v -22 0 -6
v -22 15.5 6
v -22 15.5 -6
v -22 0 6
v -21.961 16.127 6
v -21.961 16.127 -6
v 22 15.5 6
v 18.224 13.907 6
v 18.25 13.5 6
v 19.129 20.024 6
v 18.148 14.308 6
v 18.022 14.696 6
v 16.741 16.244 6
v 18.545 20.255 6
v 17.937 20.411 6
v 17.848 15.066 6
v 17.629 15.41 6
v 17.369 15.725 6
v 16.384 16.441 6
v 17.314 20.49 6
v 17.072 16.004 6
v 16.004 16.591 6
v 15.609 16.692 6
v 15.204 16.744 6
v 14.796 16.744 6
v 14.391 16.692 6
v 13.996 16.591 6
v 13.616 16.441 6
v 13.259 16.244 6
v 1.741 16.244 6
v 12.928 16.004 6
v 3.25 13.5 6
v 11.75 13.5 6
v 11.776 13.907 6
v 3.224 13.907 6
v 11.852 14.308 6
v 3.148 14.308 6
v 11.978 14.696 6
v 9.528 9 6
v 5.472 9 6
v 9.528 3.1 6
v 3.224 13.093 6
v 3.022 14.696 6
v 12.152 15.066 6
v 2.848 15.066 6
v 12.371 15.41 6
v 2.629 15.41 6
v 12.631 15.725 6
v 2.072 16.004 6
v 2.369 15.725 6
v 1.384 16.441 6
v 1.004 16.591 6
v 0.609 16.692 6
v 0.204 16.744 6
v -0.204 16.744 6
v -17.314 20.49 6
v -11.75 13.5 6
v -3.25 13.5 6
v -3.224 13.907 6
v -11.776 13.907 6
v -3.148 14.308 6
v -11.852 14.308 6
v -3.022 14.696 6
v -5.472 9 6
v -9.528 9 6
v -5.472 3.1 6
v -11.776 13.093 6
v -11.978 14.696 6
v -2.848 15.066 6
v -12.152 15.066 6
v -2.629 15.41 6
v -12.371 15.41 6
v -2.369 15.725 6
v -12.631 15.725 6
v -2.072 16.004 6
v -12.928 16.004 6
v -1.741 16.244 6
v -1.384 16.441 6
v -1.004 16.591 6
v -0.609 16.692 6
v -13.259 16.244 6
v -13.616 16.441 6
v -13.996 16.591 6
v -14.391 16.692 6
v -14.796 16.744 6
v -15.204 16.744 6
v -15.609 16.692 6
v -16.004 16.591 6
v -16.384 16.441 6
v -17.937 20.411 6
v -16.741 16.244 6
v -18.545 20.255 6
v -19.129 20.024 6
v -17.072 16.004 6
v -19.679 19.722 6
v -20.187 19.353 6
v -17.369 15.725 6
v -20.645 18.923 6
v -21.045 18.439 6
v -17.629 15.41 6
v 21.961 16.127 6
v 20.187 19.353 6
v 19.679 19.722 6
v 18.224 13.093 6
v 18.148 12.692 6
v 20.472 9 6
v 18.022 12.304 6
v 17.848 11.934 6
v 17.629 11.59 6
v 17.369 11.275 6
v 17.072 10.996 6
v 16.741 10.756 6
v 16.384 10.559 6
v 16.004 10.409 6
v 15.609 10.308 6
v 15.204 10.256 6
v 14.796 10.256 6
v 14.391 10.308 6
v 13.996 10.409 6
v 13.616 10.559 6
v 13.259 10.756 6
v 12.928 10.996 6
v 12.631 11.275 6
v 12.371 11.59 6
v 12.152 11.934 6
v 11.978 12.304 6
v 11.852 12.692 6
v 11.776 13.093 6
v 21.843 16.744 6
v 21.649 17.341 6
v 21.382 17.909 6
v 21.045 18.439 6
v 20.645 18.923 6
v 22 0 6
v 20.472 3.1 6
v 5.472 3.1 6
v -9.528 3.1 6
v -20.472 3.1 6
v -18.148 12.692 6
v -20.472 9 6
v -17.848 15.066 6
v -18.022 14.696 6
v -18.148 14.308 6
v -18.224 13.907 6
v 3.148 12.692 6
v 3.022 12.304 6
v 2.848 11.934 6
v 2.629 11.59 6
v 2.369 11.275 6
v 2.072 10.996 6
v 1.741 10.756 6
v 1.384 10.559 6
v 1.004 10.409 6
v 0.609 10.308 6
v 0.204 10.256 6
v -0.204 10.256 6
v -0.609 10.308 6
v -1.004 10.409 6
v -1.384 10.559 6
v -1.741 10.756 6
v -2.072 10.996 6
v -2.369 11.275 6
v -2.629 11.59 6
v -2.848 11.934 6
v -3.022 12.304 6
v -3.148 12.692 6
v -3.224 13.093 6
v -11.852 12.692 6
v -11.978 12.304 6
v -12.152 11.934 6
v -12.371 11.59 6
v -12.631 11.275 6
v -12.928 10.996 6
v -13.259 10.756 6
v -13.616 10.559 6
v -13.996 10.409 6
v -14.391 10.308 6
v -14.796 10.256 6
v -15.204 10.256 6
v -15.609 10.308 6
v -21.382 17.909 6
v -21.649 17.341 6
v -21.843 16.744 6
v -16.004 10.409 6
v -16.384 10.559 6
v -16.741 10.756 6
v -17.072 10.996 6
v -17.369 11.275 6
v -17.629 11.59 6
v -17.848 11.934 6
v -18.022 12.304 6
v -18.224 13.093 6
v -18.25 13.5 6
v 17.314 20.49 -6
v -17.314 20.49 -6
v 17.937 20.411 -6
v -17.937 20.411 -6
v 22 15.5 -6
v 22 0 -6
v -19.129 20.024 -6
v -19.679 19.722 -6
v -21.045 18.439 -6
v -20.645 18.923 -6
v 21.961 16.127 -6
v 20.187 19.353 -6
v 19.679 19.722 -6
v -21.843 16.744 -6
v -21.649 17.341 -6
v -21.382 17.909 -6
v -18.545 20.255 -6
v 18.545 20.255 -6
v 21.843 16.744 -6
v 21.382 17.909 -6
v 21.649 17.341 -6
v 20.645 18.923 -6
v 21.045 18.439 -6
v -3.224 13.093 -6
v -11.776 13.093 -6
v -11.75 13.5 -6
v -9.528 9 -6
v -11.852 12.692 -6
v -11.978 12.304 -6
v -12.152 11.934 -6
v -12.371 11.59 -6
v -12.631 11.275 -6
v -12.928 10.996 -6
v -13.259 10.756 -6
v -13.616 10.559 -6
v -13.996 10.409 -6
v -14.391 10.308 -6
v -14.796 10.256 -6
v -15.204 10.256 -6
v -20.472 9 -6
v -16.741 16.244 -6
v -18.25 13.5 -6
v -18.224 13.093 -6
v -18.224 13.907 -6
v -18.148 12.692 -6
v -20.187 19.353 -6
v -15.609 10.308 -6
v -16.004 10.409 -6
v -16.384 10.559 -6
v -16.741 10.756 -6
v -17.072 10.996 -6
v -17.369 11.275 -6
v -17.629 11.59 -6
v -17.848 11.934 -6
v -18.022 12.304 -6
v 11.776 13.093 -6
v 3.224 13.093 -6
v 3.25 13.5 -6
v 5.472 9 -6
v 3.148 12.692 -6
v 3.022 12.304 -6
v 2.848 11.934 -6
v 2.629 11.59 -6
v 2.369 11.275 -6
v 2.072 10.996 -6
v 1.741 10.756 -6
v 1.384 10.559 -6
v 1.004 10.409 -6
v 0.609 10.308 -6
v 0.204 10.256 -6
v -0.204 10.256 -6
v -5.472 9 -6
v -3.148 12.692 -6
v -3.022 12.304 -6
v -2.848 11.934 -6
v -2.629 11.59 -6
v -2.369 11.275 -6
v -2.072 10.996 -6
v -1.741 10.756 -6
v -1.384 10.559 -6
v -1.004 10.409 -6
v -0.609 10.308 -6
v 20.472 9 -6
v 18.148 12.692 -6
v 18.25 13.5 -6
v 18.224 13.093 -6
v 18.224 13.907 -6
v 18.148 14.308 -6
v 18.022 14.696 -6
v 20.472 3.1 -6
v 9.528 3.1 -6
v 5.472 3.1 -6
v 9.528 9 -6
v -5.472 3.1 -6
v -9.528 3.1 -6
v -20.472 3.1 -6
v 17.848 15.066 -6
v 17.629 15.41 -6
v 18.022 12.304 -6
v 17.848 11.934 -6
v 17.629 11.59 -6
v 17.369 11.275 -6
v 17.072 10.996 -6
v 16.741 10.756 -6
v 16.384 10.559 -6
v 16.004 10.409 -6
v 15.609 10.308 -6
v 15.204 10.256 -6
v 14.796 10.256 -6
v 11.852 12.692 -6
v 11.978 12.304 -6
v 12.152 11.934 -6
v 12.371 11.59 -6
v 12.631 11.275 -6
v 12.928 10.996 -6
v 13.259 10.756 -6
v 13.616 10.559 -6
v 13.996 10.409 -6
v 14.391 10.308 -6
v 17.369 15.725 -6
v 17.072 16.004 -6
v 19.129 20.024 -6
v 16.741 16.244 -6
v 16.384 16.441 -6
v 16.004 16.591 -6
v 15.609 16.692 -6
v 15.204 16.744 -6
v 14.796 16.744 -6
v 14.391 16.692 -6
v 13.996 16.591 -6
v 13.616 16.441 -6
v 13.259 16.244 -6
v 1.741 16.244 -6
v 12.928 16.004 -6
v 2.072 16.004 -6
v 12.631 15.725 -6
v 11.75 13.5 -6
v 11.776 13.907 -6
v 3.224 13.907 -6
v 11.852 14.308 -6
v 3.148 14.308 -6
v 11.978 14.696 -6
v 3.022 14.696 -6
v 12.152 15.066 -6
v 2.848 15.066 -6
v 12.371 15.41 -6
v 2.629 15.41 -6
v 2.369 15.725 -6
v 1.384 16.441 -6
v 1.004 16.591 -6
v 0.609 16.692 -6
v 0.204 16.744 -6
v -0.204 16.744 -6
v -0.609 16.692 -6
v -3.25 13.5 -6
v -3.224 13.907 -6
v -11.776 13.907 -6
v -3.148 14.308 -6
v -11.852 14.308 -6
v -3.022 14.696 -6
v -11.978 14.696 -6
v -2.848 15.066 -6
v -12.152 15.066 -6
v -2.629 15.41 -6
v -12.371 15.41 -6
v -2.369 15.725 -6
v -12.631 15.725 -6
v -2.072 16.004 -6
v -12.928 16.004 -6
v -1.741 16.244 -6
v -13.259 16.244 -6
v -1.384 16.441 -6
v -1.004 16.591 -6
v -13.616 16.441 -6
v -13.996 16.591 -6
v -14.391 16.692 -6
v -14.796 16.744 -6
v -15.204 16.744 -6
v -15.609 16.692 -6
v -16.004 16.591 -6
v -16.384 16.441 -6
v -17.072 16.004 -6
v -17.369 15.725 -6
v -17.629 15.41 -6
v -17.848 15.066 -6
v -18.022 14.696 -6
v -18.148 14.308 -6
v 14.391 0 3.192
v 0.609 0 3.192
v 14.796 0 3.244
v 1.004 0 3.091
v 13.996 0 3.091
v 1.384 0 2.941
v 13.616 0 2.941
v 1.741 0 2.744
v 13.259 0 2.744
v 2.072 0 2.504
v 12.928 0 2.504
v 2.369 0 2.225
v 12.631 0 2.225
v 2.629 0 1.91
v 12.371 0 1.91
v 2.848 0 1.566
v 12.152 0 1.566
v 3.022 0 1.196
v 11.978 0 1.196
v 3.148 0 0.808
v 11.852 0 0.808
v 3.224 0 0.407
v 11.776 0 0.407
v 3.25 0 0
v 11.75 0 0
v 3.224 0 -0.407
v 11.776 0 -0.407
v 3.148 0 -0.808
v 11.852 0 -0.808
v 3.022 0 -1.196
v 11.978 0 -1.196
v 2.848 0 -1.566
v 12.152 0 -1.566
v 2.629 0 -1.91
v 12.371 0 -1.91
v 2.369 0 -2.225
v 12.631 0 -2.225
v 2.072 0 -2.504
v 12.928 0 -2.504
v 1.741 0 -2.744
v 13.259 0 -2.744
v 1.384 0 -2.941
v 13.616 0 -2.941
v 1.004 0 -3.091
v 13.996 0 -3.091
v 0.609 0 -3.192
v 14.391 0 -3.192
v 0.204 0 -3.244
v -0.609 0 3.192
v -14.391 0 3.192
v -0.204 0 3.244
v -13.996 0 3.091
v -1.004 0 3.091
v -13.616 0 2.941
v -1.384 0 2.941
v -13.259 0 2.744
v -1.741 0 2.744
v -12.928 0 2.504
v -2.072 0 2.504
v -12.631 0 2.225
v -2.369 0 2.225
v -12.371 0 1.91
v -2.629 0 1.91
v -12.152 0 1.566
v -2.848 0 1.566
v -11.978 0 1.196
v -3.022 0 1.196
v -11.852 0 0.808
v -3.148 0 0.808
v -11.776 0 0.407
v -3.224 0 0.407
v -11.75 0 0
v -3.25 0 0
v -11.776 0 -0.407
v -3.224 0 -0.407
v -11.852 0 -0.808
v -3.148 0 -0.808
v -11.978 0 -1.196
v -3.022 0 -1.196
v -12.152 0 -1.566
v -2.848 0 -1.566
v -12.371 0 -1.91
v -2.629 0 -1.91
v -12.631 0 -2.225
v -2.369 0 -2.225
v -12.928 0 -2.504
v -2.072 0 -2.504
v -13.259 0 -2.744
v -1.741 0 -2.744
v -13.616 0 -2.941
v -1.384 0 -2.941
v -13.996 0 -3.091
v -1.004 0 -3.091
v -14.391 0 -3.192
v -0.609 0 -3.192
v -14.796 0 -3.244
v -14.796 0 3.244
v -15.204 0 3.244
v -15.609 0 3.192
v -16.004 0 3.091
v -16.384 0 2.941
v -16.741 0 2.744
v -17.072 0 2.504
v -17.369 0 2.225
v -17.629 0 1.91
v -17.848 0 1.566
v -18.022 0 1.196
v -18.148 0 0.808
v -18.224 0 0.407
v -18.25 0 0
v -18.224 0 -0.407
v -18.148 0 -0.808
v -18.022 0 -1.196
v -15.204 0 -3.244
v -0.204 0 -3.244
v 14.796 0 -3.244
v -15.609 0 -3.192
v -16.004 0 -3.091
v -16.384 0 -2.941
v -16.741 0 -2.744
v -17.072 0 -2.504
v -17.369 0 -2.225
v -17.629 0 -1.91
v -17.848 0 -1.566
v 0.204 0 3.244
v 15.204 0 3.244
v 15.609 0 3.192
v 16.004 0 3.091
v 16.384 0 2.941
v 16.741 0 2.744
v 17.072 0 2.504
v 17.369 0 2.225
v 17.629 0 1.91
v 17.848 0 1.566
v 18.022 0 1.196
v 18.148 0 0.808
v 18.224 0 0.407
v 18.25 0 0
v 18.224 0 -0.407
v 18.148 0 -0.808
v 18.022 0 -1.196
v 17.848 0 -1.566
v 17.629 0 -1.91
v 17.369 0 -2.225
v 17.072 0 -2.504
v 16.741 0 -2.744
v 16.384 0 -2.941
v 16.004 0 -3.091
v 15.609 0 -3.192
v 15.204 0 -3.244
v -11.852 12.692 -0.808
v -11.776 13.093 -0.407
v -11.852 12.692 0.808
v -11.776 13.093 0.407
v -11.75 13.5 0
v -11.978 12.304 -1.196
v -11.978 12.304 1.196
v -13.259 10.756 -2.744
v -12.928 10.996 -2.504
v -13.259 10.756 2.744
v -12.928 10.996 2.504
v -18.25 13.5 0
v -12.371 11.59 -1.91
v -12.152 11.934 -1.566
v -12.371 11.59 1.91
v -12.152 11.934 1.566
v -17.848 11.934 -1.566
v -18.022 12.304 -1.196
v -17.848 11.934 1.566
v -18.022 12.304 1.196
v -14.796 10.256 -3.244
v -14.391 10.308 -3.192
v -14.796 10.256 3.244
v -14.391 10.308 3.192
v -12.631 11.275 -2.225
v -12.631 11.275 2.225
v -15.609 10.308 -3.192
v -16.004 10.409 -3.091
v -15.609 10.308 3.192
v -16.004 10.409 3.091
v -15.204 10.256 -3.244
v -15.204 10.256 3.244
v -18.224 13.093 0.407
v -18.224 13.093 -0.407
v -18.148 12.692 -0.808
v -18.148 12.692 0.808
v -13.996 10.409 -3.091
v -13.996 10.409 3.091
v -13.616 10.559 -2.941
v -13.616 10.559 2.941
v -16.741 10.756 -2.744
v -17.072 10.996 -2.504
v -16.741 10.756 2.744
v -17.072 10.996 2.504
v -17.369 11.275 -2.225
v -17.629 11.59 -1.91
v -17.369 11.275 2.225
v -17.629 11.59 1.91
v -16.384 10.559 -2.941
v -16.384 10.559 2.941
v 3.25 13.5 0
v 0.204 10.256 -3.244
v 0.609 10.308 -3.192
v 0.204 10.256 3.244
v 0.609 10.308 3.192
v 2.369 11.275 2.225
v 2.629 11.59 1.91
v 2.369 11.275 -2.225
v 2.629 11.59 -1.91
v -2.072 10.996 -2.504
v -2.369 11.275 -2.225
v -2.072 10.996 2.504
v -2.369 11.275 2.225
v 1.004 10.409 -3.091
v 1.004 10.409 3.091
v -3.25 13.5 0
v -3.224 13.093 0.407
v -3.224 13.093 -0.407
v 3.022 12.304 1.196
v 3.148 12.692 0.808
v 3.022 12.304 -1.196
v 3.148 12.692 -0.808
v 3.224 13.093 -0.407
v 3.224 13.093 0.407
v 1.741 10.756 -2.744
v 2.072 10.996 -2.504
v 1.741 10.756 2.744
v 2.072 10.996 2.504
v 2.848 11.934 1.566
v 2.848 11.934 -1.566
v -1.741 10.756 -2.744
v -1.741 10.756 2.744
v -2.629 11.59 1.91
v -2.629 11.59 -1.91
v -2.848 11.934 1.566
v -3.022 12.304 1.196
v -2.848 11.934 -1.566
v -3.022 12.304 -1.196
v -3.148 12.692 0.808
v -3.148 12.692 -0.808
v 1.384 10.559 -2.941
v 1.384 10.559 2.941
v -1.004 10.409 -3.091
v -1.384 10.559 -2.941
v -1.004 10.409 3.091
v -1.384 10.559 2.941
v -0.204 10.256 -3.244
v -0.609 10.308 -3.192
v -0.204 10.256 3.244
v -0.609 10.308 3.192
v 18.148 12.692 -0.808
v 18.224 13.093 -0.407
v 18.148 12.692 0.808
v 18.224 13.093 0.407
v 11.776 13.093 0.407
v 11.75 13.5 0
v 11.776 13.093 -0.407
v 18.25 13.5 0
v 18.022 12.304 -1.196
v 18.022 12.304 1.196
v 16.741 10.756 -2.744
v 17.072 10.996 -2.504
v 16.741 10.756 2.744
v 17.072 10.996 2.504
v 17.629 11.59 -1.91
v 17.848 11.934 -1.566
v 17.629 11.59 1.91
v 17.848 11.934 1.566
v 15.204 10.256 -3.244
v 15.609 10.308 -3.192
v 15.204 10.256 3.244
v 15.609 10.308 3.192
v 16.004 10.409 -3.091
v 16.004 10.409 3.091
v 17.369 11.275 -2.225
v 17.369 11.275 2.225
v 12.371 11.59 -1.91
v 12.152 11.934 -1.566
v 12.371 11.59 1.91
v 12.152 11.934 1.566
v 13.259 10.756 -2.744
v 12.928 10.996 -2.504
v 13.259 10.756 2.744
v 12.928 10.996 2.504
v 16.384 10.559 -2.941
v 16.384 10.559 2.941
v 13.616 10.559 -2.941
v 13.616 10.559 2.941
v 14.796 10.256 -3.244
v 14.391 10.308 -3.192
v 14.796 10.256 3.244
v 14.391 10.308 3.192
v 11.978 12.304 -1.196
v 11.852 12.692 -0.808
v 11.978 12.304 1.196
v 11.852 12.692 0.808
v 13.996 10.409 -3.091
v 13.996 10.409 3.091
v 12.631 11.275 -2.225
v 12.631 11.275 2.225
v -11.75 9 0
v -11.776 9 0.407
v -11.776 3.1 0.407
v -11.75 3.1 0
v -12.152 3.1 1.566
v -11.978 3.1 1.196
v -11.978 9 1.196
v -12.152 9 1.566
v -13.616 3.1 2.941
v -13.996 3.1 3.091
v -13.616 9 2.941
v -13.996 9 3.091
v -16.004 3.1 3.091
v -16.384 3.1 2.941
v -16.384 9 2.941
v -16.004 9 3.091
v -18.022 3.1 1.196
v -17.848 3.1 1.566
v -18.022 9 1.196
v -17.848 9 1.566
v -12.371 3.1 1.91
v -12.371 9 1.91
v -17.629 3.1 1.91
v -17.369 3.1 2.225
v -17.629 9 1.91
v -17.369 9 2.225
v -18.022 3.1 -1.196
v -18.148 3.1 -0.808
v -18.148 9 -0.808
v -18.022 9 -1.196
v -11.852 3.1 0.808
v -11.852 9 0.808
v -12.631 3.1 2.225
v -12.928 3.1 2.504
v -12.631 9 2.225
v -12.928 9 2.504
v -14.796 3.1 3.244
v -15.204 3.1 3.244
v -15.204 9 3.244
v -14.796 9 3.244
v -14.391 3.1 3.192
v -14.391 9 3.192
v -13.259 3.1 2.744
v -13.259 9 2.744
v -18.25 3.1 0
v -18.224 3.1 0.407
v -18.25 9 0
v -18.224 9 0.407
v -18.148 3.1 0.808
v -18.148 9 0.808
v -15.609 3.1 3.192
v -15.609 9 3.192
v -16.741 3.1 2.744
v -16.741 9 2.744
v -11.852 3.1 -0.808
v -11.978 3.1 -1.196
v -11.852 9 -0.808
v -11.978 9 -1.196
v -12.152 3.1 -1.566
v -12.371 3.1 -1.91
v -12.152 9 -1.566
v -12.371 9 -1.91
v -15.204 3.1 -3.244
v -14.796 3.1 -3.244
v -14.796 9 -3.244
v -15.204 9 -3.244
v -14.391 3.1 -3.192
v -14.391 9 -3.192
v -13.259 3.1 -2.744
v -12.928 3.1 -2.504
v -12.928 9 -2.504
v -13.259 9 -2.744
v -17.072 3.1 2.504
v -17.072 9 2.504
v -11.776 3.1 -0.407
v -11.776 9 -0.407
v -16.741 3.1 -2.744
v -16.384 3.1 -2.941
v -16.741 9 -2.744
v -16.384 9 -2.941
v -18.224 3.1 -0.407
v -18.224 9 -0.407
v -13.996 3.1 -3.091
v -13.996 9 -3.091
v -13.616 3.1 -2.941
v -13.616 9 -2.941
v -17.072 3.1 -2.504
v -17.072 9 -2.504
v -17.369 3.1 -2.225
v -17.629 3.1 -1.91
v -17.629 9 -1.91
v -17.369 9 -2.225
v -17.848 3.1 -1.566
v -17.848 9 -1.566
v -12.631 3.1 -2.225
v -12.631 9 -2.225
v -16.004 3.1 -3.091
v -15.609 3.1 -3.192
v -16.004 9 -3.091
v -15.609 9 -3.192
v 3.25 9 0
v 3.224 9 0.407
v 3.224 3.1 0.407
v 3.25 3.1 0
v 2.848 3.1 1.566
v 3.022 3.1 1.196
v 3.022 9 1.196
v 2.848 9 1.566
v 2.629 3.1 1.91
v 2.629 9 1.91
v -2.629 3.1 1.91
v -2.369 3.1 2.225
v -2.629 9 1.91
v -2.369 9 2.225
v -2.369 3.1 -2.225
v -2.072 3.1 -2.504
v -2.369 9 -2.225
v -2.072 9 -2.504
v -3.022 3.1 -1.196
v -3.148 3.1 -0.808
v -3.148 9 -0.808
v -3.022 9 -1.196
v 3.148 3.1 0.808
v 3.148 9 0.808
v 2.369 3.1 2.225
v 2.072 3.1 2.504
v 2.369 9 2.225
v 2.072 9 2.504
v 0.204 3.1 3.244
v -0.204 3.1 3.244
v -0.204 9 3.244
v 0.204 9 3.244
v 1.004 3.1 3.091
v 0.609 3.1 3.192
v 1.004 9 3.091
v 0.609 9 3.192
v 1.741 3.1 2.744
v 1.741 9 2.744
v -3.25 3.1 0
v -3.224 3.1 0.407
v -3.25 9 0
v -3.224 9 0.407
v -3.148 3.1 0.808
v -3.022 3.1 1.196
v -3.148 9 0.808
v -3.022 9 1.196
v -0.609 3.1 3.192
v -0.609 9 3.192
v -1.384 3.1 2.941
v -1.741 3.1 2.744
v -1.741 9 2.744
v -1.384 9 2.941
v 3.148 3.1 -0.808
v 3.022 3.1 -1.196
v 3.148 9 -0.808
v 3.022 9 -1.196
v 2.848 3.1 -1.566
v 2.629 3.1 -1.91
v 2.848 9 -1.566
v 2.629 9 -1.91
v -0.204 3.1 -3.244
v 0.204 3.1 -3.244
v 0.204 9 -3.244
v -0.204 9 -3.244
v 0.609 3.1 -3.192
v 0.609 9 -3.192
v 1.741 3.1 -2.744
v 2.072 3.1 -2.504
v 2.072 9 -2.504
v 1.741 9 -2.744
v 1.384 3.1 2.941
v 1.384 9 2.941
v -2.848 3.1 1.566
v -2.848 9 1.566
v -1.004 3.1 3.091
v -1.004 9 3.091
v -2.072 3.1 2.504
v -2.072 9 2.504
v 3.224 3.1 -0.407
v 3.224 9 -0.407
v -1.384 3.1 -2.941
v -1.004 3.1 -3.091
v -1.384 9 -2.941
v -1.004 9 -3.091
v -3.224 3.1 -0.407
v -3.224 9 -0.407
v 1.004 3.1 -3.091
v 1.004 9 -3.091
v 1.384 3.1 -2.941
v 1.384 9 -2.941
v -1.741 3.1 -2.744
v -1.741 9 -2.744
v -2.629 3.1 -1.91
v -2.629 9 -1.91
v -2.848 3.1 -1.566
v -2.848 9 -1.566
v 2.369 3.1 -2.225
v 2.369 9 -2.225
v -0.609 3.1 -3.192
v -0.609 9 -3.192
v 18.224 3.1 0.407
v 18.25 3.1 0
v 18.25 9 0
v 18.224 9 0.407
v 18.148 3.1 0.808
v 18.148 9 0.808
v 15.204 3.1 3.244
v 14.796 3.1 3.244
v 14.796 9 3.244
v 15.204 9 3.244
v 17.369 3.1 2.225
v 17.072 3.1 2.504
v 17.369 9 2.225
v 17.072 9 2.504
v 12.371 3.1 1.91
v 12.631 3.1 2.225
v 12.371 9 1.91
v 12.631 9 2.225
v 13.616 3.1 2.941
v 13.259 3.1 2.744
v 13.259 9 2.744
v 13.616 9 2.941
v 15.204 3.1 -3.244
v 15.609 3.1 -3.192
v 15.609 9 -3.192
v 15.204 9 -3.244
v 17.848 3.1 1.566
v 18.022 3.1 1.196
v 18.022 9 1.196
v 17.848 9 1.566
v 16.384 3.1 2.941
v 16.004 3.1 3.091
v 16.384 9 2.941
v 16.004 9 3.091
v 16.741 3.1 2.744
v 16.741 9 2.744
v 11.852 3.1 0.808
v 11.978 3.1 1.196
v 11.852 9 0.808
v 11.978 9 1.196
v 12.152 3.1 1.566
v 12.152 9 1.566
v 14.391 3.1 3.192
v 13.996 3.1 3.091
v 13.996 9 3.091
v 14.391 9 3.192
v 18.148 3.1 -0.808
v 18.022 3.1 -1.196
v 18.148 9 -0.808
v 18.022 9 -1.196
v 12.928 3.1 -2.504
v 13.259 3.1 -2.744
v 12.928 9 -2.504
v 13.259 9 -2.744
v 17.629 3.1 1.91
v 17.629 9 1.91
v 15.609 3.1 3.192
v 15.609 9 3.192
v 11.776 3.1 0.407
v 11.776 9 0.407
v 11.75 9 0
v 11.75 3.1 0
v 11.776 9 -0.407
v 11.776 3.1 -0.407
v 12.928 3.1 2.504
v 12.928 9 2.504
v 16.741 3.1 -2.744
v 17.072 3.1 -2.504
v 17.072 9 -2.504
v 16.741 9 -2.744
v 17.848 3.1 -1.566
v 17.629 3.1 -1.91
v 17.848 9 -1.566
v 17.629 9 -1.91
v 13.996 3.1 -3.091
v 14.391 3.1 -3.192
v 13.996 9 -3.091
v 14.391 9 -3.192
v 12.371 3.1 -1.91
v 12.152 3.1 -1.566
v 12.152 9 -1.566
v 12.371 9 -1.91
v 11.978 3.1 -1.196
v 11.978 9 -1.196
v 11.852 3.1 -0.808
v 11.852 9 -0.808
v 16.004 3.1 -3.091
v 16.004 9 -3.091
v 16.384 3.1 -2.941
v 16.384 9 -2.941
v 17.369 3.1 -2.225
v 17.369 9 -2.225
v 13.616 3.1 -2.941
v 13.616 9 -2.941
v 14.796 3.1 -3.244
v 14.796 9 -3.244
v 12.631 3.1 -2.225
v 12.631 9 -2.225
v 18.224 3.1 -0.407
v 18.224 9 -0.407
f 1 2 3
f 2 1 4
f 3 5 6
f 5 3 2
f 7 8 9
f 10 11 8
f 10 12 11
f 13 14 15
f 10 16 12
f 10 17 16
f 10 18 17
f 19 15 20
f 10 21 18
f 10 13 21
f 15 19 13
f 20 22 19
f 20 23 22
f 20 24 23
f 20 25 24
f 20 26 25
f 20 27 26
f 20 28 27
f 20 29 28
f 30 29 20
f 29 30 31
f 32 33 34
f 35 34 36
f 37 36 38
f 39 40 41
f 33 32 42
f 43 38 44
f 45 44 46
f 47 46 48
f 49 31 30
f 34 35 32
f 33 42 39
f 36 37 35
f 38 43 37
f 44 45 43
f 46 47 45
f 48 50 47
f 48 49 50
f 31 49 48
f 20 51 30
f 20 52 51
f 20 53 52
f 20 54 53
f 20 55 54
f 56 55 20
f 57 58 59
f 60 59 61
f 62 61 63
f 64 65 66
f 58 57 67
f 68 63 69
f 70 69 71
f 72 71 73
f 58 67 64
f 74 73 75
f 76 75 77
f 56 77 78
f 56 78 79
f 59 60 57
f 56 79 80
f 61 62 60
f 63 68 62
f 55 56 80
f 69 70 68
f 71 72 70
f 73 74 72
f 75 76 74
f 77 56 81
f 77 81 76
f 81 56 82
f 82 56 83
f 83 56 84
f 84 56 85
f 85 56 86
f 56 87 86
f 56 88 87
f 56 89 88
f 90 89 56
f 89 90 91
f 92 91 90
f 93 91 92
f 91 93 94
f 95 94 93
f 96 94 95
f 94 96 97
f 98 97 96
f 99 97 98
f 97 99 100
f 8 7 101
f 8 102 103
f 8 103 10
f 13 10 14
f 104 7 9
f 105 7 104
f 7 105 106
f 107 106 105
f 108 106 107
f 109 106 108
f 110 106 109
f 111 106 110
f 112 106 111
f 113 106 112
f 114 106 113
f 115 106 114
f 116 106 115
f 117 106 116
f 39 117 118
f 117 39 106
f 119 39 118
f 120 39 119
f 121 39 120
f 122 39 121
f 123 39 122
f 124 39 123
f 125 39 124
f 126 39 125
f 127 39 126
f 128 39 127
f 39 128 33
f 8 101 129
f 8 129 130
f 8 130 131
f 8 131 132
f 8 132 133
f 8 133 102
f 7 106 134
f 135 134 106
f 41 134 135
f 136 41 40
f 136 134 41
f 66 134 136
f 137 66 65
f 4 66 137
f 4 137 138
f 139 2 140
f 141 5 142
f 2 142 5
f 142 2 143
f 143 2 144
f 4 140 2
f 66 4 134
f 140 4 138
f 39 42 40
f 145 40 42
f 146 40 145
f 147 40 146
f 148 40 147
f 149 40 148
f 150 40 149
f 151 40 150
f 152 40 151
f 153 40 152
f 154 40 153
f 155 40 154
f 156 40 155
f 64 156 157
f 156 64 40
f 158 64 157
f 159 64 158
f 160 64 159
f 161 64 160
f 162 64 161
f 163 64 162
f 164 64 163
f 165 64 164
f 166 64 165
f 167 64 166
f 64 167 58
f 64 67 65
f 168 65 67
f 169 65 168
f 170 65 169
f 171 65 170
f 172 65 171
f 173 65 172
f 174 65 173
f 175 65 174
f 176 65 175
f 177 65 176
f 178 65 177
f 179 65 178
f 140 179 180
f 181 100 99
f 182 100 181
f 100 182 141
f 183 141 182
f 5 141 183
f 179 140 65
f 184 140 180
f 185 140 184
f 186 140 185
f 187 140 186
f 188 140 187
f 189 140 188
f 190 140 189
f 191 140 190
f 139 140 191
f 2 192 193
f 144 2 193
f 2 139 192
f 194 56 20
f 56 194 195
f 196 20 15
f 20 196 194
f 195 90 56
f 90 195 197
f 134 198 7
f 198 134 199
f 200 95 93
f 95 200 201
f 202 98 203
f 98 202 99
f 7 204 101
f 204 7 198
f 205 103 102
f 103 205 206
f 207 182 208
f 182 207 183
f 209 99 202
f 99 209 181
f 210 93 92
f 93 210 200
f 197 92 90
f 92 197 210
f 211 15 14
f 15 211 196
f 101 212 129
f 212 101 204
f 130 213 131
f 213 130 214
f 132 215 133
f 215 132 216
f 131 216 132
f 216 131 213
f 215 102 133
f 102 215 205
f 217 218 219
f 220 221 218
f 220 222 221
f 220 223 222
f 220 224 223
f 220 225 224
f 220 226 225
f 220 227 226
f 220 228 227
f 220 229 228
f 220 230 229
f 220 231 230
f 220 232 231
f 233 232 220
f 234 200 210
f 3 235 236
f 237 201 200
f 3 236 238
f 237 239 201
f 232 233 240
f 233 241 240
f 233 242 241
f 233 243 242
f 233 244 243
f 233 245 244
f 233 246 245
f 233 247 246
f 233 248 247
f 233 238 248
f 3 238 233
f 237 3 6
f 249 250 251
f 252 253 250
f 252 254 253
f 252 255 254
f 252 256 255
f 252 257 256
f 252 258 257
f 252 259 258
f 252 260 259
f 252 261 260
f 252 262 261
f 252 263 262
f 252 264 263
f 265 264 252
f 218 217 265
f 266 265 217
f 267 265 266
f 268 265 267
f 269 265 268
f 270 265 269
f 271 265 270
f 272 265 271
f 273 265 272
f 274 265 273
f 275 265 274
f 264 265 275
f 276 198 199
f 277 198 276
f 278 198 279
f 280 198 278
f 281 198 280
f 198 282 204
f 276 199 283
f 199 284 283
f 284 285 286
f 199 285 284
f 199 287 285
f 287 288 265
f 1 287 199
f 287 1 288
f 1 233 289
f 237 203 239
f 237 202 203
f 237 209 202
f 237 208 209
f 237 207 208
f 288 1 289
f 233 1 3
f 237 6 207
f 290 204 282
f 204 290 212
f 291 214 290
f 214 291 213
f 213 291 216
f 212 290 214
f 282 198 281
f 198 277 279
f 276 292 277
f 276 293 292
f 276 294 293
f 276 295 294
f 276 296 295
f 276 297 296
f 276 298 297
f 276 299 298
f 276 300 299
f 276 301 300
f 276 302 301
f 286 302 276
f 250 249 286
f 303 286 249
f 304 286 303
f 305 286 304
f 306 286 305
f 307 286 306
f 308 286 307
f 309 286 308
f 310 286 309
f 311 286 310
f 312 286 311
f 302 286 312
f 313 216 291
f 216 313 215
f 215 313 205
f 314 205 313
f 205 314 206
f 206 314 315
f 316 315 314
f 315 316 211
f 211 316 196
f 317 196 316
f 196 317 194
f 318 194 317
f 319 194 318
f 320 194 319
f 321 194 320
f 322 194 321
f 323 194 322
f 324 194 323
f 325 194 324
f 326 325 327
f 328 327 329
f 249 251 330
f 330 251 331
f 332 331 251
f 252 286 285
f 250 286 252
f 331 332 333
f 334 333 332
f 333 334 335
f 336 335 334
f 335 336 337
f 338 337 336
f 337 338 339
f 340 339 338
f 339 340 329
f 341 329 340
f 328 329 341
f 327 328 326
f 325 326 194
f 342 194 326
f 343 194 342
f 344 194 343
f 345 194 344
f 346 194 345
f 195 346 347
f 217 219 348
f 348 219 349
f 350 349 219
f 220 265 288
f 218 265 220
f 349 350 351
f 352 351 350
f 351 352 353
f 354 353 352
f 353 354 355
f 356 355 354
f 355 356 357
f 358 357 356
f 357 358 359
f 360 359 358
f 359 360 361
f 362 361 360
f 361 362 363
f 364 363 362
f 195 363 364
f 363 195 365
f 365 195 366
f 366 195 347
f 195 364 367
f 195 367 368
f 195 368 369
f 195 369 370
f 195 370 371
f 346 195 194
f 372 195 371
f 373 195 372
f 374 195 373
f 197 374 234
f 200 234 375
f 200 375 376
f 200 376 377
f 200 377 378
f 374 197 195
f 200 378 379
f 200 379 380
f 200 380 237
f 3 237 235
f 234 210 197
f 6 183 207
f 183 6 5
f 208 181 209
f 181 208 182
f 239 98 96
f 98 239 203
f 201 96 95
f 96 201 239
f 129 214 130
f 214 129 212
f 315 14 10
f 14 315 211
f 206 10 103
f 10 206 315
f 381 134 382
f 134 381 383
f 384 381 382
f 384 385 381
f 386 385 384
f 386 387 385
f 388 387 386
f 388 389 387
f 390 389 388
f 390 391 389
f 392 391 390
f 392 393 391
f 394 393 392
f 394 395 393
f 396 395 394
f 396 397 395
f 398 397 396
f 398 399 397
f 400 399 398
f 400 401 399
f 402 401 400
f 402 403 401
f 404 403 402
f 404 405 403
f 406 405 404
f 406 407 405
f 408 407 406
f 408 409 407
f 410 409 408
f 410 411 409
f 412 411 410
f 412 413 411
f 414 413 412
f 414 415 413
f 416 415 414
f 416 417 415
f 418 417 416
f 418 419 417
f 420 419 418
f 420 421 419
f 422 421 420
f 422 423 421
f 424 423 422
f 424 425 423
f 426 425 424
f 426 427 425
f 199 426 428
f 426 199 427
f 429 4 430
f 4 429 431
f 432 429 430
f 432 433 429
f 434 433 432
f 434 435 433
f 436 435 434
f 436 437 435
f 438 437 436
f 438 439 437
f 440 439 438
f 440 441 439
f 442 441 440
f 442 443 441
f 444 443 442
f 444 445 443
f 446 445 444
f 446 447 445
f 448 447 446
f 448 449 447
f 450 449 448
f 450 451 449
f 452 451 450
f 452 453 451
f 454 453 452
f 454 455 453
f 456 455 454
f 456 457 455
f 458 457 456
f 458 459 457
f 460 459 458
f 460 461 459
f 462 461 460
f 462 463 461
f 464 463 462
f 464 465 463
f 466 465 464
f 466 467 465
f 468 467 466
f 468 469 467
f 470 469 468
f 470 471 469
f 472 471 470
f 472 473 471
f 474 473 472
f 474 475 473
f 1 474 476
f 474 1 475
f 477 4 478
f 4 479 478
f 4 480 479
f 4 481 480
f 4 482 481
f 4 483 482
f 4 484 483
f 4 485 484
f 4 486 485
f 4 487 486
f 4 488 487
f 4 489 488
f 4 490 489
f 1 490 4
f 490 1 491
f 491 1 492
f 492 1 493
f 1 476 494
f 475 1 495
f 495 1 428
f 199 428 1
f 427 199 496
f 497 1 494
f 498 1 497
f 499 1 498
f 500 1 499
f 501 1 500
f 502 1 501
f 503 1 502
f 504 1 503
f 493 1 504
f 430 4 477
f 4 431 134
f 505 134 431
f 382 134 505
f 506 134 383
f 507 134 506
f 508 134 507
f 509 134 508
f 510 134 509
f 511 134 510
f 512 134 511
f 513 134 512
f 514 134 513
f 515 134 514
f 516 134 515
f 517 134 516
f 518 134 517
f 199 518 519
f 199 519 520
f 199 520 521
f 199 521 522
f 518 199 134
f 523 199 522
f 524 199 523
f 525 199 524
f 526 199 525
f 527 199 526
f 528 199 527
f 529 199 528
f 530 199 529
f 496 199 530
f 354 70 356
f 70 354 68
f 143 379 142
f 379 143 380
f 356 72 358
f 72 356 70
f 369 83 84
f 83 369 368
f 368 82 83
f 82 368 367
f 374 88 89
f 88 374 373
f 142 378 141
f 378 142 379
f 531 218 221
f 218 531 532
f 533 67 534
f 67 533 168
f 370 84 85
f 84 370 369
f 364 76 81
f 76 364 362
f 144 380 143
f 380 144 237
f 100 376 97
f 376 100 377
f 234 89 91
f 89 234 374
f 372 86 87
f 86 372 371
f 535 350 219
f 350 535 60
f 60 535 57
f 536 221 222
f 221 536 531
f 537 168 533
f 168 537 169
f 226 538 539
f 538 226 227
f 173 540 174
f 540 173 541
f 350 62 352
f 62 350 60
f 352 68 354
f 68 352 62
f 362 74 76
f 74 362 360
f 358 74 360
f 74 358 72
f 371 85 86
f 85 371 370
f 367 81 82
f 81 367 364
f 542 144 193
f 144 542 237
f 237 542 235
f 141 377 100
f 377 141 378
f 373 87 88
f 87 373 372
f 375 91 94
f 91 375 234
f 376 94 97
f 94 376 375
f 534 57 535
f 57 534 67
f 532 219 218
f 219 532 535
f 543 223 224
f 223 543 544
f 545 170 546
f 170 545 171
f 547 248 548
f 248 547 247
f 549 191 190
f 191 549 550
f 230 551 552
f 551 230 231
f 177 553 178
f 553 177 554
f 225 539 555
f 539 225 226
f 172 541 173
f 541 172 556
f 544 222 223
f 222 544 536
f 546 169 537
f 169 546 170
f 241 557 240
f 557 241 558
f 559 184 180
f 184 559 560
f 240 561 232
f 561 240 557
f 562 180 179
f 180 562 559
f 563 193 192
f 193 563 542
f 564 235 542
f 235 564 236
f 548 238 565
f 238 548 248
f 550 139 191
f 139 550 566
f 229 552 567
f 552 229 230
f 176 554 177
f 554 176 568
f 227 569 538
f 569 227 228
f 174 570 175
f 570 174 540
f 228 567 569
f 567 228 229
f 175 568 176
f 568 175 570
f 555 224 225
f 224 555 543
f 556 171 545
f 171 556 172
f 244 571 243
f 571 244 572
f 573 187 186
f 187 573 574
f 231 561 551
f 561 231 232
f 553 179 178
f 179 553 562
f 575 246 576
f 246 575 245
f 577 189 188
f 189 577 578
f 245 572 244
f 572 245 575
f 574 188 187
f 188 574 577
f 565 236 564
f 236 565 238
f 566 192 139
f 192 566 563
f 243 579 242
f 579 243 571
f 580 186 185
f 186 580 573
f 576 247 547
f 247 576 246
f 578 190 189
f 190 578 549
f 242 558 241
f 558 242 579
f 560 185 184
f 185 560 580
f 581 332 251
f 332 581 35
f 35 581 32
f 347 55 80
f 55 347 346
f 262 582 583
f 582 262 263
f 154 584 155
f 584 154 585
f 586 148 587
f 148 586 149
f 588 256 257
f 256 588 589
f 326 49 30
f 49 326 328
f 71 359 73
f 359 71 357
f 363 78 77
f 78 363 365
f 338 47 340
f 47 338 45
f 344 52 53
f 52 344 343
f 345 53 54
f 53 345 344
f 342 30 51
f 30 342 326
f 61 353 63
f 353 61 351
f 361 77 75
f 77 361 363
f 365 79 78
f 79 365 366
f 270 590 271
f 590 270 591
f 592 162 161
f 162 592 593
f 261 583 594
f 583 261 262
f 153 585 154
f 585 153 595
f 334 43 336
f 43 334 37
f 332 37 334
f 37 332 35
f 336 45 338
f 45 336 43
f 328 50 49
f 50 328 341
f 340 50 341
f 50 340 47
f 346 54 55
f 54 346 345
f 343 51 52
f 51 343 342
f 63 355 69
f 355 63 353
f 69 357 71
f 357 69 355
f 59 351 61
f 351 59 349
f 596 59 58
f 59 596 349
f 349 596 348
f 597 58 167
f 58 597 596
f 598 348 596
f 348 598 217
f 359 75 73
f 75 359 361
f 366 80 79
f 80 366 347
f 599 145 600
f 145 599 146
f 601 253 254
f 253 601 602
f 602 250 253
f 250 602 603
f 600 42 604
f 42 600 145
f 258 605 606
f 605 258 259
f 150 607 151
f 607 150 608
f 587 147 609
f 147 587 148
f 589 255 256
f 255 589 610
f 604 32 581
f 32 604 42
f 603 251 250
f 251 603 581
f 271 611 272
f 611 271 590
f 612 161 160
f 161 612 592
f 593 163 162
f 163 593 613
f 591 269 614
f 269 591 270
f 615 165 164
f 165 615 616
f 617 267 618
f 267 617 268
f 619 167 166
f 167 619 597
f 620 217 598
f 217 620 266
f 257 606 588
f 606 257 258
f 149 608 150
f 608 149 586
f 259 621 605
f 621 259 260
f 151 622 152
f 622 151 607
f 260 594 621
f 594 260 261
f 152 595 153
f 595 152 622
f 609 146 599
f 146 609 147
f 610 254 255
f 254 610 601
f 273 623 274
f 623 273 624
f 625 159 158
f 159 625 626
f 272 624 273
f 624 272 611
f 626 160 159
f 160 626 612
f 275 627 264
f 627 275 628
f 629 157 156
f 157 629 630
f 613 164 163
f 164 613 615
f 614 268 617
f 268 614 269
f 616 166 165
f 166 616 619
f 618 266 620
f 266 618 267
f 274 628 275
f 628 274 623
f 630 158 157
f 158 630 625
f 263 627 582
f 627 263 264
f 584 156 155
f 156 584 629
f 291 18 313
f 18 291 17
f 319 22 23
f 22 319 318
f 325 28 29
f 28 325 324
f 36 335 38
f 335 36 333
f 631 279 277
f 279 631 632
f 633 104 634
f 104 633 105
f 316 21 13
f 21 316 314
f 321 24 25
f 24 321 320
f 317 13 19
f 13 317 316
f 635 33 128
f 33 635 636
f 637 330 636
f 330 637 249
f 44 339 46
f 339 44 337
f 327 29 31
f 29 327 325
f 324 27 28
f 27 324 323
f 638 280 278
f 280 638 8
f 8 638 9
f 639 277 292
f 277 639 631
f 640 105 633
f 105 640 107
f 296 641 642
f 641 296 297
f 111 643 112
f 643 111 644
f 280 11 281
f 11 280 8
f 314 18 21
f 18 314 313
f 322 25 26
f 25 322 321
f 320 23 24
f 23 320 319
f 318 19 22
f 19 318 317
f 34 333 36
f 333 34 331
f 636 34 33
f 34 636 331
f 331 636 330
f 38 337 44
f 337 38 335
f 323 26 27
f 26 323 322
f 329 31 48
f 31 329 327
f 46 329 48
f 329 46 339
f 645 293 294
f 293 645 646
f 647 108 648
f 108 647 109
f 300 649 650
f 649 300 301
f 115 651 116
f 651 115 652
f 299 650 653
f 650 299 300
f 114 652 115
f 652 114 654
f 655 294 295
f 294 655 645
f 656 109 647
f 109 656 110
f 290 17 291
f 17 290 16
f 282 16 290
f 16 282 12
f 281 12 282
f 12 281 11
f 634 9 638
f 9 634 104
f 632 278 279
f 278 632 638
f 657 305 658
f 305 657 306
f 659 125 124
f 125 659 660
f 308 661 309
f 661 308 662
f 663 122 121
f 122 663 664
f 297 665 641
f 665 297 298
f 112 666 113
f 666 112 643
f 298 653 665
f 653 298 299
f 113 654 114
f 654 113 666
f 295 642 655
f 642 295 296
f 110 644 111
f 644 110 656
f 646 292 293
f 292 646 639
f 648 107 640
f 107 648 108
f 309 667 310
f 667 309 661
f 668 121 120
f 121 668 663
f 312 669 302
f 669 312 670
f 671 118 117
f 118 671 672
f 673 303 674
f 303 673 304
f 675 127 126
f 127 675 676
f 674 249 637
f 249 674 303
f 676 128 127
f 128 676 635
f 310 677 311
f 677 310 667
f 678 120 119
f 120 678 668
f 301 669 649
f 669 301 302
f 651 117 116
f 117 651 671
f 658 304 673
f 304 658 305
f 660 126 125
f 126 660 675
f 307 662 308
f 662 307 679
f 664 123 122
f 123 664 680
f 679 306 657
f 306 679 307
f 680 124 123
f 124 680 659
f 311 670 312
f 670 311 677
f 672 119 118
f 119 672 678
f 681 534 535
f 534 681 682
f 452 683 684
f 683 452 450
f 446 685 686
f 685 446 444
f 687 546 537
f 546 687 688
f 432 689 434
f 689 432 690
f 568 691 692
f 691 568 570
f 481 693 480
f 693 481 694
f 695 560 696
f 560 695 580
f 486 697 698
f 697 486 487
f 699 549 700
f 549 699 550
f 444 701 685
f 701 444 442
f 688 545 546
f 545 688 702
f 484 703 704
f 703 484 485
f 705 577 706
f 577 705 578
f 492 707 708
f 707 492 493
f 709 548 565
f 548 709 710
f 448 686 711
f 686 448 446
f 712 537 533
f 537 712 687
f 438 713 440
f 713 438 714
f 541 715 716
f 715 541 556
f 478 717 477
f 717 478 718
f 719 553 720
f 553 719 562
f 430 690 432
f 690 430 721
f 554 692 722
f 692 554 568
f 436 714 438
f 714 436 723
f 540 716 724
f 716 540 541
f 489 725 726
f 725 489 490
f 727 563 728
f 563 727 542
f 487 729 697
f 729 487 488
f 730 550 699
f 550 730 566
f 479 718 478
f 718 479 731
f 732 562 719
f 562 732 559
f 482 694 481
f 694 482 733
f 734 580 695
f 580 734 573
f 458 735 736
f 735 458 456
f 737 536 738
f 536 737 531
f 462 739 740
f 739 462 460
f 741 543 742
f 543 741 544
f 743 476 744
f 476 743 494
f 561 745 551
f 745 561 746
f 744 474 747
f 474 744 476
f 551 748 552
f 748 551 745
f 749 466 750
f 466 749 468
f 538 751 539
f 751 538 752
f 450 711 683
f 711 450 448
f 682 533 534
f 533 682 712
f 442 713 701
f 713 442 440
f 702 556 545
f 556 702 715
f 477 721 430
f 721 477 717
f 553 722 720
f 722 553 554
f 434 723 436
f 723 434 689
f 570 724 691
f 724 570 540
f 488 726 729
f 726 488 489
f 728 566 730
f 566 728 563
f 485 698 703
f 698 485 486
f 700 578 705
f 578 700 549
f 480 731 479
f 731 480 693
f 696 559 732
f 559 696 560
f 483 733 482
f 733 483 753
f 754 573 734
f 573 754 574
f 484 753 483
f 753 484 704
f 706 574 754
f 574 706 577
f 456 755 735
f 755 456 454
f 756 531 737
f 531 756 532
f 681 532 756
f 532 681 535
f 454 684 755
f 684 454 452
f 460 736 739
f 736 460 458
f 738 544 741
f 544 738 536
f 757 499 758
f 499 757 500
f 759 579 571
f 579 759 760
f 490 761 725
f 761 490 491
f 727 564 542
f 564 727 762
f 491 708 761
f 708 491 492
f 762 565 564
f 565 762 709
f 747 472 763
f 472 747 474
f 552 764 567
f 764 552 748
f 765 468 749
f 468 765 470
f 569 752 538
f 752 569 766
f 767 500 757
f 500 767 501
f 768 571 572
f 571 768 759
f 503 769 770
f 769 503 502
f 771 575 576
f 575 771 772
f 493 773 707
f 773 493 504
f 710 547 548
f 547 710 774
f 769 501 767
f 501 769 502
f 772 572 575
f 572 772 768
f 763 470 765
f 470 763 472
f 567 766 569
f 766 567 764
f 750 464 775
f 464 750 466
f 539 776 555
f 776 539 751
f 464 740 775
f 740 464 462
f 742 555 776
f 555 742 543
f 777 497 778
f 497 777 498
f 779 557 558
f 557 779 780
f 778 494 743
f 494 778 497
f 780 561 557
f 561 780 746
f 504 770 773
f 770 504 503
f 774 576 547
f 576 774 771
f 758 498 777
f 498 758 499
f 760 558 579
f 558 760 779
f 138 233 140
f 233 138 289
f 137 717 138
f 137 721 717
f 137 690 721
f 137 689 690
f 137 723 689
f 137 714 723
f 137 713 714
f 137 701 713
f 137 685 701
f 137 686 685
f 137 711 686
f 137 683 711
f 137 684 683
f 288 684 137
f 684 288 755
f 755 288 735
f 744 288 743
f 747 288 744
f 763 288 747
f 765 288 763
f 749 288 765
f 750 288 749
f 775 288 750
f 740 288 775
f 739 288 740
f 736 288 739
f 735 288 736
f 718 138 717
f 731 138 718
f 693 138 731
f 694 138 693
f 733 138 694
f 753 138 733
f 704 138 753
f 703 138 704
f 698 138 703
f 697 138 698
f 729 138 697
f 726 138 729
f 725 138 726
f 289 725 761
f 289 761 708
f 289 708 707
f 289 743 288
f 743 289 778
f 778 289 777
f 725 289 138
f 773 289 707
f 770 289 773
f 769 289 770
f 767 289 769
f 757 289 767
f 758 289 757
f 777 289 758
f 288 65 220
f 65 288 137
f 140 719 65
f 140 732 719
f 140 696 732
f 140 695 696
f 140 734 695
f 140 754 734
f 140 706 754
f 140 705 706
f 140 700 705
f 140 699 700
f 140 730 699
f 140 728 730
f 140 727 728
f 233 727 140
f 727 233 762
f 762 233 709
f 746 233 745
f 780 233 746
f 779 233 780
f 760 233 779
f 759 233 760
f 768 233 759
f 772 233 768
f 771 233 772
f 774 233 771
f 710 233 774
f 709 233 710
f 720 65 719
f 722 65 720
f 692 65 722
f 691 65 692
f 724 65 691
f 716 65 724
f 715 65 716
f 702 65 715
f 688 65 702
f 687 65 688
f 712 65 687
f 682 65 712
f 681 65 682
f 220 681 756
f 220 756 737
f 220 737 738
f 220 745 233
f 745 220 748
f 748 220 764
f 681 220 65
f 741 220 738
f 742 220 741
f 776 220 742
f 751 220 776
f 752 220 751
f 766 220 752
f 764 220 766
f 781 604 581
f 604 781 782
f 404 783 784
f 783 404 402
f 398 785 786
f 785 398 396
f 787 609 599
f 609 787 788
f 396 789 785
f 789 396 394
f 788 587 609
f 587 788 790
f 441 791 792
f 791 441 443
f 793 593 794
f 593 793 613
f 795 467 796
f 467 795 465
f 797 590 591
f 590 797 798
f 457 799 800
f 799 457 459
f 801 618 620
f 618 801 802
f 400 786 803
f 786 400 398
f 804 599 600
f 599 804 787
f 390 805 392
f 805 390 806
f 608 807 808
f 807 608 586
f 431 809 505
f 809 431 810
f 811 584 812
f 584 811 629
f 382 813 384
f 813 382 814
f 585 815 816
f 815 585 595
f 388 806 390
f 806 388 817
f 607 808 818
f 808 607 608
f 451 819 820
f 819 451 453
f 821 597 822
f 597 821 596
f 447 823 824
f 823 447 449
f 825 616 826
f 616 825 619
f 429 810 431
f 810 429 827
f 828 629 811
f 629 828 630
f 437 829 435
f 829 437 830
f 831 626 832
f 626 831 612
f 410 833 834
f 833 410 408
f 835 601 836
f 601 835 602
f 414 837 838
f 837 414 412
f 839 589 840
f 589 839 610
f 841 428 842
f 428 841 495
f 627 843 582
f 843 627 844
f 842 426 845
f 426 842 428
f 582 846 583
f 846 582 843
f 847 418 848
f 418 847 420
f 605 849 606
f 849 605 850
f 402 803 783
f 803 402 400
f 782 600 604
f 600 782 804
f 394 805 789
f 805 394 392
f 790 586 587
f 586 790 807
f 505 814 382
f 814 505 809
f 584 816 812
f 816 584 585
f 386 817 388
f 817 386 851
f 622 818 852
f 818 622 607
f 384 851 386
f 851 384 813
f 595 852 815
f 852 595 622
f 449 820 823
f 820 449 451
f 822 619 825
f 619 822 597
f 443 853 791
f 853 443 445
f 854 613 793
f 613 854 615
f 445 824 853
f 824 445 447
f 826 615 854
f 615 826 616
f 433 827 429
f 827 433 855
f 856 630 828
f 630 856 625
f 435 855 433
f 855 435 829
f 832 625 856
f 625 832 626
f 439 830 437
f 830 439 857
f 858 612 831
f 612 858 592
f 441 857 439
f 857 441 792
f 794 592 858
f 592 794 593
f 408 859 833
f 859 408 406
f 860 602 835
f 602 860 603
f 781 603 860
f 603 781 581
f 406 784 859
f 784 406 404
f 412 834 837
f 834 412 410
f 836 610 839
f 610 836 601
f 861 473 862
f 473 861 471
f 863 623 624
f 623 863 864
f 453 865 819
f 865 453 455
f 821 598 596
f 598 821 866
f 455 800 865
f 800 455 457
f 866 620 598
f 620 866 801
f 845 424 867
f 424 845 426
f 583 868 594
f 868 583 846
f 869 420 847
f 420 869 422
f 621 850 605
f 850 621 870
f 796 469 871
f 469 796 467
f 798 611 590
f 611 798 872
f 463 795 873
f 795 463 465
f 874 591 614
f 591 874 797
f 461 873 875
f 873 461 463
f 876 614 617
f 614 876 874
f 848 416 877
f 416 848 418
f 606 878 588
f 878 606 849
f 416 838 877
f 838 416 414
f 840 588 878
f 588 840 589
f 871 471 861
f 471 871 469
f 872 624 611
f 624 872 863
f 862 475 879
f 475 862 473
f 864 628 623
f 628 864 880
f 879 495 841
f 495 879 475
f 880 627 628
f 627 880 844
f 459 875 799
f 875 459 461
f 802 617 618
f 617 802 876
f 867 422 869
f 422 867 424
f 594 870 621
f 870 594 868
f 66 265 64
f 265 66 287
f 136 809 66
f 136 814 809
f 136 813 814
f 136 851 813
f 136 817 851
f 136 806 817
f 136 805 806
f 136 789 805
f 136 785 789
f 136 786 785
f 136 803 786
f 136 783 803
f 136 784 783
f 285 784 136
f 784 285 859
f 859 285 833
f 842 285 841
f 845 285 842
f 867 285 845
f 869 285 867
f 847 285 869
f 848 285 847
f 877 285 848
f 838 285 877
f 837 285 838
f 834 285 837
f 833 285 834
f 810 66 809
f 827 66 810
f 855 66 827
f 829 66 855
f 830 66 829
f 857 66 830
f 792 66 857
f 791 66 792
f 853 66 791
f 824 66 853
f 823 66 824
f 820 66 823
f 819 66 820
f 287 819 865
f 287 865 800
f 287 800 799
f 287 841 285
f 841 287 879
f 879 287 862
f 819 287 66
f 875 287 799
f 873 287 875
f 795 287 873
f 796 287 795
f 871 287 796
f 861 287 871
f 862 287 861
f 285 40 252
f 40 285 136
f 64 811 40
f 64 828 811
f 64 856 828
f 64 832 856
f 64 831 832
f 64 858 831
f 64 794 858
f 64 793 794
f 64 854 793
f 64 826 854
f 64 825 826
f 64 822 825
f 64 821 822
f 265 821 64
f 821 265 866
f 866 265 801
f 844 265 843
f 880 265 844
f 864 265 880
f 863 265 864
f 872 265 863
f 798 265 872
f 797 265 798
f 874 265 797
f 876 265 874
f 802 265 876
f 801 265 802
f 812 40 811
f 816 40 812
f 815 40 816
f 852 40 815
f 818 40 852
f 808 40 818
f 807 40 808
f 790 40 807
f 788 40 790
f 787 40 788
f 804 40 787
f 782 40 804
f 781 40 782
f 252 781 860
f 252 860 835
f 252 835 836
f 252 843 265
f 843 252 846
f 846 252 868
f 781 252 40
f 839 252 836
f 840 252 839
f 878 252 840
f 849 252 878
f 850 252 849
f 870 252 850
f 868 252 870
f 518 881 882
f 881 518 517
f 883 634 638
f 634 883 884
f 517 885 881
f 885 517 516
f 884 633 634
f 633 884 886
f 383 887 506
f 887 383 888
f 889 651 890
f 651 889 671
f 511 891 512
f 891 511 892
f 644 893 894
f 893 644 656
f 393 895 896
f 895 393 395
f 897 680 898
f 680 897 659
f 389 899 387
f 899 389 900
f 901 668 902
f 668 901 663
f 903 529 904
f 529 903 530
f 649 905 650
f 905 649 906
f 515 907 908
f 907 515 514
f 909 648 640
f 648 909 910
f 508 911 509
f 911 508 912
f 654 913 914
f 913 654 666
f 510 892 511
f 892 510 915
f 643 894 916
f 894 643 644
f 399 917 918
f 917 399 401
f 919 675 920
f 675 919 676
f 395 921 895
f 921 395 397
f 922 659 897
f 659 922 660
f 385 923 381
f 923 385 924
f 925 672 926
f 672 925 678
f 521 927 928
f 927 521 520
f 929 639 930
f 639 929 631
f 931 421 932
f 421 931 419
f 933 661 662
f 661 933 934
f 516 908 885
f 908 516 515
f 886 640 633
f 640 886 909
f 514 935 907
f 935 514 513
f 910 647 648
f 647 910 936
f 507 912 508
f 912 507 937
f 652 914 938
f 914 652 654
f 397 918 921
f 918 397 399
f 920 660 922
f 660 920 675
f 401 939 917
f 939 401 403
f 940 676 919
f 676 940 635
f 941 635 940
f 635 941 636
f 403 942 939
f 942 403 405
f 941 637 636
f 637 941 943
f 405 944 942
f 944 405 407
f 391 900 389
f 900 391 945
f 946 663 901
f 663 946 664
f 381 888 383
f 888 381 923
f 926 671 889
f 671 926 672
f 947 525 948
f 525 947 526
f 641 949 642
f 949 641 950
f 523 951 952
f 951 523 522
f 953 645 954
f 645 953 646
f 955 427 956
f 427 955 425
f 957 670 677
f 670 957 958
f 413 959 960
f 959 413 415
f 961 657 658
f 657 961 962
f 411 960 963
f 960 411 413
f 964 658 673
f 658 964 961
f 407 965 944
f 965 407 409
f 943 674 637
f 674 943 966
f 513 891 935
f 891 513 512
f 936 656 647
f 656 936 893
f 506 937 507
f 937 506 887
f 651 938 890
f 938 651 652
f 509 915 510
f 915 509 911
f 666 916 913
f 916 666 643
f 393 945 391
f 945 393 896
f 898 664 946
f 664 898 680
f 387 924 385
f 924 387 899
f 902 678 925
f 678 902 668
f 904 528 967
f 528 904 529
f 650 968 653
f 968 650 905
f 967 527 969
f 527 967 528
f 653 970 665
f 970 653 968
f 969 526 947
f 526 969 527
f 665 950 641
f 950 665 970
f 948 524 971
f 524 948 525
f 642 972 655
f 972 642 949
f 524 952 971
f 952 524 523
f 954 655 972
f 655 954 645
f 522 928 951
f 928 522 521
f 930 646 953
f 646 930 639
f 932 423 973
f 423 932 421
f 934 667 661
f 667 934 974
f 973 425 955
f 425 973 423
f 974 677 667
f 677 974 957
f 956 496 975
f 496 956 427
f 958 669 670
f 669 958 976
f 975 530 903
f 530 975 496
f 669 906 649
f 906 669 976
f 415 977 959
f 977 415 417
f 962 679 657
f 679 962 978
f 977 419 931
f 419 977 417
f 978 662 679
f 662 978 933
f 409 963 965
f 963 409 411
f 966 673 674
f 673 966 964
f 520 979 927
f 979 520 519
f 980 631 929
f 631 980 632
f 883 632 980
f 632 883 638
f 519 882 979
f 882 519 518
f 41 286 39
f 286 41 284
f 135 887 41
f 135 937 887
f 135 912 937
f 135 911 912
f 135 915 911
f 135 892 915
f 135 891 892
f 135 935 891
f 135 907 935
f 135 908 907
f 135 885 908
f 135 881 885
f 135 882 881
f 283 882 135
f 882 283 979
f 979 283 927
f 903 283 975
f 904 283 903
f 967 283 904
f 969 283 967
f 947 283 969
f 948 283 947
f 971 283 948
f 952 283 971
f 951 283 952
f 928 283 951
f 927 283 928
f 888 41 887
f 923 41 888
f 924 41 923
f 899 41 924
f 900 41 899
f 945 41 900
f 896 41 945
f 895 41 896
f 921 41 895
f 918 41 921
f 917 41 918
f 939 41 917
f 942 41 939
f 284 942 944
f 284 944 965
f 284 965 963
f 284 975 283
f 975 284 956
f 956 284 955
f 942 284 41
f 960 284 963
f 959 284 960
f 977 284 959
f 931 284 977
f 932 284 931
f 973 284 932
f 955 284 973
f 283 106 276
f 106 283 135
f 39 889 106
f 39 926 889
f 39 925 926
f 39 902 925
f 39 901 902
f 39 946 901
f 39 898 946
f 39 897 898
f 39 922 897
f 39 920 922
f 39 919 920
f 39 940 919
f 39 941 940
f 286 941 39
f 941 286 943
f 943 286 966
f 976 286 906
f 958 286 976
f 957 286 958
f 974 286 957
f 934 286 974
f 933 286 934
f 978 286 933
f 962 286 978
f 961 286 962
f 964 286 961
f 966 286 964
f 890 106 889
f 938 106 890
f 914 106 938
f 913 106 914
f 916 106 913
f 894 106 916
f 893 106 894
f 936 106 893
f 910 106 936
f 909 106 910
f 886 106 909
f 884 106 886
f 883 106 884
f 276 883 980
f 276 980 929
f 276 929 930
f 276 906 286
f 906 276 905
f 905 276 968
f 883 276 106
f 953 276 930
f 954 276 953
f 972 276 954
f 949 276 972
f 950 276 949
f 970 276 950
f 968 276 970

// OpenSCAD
$fn = 50;


difference() {
	union() {
		translate(v = [0, 13.5000000000, -6.0000000000]) {
			rotate(a = [0, 0, 0]) {
				hull() {
					translate(v = [-17.0000000000, 2.0000000000, 0]) {
						rotate(a = [0, 0, 0]) {
							translate(v = [0, 0, 0]) {
								rotate(a = [0, 0, 0]) {
									cylinder(h = 12, r = 5);
								}
							}
						}
					}
					translate(v = [17.0000000000, 2.0000000000, 0]) {
						rotate(a = [0, 0, 0]) {
							translate(v = [0, 0, 0]) {
								rotate(a = [0, 0, 0]) {
									cylinder(h = 12, r = 5);
								}
							}
						}
					}
					translate(v = [-17.0000000000, -2.0000000000, 0]) {
						rotate(a = [0, 0, 0]) {
							translate(v = [0, 0, 0]) {
								rotate(a = [0, 0, 0]) {
									cylinder(h = 12, r = 5);
								}
							}
						}
					}
					translate(v = [17.0000000000, -2.0000000000, 0]) {
						rotate(a = [0, 0, 0]) {
							translate(v = [0, 0, 0]) {
								rotate(a = [0, 0, 0]) {
									cylinder(h = 12, r = 5);
								}
							}
						}
					}
				}
			}
		}
		translate(v = [-22.0000000000, 0, -6.0000000000]) {
			rotate(a = [0, 0, 0]) {
				cube(size = [44, 13.5000000000, 12]);
			}
		}
	}
	union() {
		translate(v = [-15.0000000000, 13.5000000000, -6.0000000000]) {
			rotate(a = [0, 0, 0]) {
				translate(v = [0, 0, -50]) {
					rotate(a = [0, 0, 0]) {
						cylinder(h = 100, r = 3.2500000000);
					}
				}
			}
		}
		translate(v = [0.0000000000, 13.5000000000, -6.0000000000]) {
			rotate(a = [0, 0, 0]) {
				translate(v = [0, 0, -50]) {
					rotate(a = [0, 0, 0]) {
						cylinder(h = 100, r = 3.2500000000);
					}
				}
			}
		}
		translate(v = [15.0000000000, 13.5000000000, -6.0000000000]) {
			rotate(a = [0, 0, 0]) {
				translate(v = [0, 0, -50]) {
					rotate(a = [0, 0, 0]) {
						cylinder(h = 100, r = 3.2500000000);
					}
				}
			}
		}
		translate(v = [-15.0000000000, 13.5000000000, 0]) {
			rotate(a = [90, 0, 0]) {
				cylinder(h = 13.5000000000, r = 3.2500000000);
			}
		}
		translate(v = [-20.4716204506, 9, -25]) {
			rotate(a = [90, 0, 0]) {
				cube(size = [10.9432409012, 100, 5.9000000000]);
			}
		}
		translate(v = [0.0000000000, 13.5000000000, 0]) {
			rotate(a = [90, 0, 0]) {
				cylinder(h = 13.5000000000, r = 3.2500000000);
			}
		}
		translate(v = [-5.4716204506, 9, -25]) {
			rotate(a = [90, 0, 0]) {
				cube(size = [10.9432409012, 100, 5.9000000000]);
			}
		}
		translate(v = [15.0000000000, 13.5000000000, 0]) {
			rotate(a = [90, 0, 0]) {
				cylinder(h = 13.5000000000, r = 3.2500000000);
			}
		}
		translate(v = [9.5283795494, 9, -25]) {
			rotate(a = [90, 0, 0]) {
				cube(size = [10.9432409012, 100, 5.9000000000]);
			}
		}
	}
}
